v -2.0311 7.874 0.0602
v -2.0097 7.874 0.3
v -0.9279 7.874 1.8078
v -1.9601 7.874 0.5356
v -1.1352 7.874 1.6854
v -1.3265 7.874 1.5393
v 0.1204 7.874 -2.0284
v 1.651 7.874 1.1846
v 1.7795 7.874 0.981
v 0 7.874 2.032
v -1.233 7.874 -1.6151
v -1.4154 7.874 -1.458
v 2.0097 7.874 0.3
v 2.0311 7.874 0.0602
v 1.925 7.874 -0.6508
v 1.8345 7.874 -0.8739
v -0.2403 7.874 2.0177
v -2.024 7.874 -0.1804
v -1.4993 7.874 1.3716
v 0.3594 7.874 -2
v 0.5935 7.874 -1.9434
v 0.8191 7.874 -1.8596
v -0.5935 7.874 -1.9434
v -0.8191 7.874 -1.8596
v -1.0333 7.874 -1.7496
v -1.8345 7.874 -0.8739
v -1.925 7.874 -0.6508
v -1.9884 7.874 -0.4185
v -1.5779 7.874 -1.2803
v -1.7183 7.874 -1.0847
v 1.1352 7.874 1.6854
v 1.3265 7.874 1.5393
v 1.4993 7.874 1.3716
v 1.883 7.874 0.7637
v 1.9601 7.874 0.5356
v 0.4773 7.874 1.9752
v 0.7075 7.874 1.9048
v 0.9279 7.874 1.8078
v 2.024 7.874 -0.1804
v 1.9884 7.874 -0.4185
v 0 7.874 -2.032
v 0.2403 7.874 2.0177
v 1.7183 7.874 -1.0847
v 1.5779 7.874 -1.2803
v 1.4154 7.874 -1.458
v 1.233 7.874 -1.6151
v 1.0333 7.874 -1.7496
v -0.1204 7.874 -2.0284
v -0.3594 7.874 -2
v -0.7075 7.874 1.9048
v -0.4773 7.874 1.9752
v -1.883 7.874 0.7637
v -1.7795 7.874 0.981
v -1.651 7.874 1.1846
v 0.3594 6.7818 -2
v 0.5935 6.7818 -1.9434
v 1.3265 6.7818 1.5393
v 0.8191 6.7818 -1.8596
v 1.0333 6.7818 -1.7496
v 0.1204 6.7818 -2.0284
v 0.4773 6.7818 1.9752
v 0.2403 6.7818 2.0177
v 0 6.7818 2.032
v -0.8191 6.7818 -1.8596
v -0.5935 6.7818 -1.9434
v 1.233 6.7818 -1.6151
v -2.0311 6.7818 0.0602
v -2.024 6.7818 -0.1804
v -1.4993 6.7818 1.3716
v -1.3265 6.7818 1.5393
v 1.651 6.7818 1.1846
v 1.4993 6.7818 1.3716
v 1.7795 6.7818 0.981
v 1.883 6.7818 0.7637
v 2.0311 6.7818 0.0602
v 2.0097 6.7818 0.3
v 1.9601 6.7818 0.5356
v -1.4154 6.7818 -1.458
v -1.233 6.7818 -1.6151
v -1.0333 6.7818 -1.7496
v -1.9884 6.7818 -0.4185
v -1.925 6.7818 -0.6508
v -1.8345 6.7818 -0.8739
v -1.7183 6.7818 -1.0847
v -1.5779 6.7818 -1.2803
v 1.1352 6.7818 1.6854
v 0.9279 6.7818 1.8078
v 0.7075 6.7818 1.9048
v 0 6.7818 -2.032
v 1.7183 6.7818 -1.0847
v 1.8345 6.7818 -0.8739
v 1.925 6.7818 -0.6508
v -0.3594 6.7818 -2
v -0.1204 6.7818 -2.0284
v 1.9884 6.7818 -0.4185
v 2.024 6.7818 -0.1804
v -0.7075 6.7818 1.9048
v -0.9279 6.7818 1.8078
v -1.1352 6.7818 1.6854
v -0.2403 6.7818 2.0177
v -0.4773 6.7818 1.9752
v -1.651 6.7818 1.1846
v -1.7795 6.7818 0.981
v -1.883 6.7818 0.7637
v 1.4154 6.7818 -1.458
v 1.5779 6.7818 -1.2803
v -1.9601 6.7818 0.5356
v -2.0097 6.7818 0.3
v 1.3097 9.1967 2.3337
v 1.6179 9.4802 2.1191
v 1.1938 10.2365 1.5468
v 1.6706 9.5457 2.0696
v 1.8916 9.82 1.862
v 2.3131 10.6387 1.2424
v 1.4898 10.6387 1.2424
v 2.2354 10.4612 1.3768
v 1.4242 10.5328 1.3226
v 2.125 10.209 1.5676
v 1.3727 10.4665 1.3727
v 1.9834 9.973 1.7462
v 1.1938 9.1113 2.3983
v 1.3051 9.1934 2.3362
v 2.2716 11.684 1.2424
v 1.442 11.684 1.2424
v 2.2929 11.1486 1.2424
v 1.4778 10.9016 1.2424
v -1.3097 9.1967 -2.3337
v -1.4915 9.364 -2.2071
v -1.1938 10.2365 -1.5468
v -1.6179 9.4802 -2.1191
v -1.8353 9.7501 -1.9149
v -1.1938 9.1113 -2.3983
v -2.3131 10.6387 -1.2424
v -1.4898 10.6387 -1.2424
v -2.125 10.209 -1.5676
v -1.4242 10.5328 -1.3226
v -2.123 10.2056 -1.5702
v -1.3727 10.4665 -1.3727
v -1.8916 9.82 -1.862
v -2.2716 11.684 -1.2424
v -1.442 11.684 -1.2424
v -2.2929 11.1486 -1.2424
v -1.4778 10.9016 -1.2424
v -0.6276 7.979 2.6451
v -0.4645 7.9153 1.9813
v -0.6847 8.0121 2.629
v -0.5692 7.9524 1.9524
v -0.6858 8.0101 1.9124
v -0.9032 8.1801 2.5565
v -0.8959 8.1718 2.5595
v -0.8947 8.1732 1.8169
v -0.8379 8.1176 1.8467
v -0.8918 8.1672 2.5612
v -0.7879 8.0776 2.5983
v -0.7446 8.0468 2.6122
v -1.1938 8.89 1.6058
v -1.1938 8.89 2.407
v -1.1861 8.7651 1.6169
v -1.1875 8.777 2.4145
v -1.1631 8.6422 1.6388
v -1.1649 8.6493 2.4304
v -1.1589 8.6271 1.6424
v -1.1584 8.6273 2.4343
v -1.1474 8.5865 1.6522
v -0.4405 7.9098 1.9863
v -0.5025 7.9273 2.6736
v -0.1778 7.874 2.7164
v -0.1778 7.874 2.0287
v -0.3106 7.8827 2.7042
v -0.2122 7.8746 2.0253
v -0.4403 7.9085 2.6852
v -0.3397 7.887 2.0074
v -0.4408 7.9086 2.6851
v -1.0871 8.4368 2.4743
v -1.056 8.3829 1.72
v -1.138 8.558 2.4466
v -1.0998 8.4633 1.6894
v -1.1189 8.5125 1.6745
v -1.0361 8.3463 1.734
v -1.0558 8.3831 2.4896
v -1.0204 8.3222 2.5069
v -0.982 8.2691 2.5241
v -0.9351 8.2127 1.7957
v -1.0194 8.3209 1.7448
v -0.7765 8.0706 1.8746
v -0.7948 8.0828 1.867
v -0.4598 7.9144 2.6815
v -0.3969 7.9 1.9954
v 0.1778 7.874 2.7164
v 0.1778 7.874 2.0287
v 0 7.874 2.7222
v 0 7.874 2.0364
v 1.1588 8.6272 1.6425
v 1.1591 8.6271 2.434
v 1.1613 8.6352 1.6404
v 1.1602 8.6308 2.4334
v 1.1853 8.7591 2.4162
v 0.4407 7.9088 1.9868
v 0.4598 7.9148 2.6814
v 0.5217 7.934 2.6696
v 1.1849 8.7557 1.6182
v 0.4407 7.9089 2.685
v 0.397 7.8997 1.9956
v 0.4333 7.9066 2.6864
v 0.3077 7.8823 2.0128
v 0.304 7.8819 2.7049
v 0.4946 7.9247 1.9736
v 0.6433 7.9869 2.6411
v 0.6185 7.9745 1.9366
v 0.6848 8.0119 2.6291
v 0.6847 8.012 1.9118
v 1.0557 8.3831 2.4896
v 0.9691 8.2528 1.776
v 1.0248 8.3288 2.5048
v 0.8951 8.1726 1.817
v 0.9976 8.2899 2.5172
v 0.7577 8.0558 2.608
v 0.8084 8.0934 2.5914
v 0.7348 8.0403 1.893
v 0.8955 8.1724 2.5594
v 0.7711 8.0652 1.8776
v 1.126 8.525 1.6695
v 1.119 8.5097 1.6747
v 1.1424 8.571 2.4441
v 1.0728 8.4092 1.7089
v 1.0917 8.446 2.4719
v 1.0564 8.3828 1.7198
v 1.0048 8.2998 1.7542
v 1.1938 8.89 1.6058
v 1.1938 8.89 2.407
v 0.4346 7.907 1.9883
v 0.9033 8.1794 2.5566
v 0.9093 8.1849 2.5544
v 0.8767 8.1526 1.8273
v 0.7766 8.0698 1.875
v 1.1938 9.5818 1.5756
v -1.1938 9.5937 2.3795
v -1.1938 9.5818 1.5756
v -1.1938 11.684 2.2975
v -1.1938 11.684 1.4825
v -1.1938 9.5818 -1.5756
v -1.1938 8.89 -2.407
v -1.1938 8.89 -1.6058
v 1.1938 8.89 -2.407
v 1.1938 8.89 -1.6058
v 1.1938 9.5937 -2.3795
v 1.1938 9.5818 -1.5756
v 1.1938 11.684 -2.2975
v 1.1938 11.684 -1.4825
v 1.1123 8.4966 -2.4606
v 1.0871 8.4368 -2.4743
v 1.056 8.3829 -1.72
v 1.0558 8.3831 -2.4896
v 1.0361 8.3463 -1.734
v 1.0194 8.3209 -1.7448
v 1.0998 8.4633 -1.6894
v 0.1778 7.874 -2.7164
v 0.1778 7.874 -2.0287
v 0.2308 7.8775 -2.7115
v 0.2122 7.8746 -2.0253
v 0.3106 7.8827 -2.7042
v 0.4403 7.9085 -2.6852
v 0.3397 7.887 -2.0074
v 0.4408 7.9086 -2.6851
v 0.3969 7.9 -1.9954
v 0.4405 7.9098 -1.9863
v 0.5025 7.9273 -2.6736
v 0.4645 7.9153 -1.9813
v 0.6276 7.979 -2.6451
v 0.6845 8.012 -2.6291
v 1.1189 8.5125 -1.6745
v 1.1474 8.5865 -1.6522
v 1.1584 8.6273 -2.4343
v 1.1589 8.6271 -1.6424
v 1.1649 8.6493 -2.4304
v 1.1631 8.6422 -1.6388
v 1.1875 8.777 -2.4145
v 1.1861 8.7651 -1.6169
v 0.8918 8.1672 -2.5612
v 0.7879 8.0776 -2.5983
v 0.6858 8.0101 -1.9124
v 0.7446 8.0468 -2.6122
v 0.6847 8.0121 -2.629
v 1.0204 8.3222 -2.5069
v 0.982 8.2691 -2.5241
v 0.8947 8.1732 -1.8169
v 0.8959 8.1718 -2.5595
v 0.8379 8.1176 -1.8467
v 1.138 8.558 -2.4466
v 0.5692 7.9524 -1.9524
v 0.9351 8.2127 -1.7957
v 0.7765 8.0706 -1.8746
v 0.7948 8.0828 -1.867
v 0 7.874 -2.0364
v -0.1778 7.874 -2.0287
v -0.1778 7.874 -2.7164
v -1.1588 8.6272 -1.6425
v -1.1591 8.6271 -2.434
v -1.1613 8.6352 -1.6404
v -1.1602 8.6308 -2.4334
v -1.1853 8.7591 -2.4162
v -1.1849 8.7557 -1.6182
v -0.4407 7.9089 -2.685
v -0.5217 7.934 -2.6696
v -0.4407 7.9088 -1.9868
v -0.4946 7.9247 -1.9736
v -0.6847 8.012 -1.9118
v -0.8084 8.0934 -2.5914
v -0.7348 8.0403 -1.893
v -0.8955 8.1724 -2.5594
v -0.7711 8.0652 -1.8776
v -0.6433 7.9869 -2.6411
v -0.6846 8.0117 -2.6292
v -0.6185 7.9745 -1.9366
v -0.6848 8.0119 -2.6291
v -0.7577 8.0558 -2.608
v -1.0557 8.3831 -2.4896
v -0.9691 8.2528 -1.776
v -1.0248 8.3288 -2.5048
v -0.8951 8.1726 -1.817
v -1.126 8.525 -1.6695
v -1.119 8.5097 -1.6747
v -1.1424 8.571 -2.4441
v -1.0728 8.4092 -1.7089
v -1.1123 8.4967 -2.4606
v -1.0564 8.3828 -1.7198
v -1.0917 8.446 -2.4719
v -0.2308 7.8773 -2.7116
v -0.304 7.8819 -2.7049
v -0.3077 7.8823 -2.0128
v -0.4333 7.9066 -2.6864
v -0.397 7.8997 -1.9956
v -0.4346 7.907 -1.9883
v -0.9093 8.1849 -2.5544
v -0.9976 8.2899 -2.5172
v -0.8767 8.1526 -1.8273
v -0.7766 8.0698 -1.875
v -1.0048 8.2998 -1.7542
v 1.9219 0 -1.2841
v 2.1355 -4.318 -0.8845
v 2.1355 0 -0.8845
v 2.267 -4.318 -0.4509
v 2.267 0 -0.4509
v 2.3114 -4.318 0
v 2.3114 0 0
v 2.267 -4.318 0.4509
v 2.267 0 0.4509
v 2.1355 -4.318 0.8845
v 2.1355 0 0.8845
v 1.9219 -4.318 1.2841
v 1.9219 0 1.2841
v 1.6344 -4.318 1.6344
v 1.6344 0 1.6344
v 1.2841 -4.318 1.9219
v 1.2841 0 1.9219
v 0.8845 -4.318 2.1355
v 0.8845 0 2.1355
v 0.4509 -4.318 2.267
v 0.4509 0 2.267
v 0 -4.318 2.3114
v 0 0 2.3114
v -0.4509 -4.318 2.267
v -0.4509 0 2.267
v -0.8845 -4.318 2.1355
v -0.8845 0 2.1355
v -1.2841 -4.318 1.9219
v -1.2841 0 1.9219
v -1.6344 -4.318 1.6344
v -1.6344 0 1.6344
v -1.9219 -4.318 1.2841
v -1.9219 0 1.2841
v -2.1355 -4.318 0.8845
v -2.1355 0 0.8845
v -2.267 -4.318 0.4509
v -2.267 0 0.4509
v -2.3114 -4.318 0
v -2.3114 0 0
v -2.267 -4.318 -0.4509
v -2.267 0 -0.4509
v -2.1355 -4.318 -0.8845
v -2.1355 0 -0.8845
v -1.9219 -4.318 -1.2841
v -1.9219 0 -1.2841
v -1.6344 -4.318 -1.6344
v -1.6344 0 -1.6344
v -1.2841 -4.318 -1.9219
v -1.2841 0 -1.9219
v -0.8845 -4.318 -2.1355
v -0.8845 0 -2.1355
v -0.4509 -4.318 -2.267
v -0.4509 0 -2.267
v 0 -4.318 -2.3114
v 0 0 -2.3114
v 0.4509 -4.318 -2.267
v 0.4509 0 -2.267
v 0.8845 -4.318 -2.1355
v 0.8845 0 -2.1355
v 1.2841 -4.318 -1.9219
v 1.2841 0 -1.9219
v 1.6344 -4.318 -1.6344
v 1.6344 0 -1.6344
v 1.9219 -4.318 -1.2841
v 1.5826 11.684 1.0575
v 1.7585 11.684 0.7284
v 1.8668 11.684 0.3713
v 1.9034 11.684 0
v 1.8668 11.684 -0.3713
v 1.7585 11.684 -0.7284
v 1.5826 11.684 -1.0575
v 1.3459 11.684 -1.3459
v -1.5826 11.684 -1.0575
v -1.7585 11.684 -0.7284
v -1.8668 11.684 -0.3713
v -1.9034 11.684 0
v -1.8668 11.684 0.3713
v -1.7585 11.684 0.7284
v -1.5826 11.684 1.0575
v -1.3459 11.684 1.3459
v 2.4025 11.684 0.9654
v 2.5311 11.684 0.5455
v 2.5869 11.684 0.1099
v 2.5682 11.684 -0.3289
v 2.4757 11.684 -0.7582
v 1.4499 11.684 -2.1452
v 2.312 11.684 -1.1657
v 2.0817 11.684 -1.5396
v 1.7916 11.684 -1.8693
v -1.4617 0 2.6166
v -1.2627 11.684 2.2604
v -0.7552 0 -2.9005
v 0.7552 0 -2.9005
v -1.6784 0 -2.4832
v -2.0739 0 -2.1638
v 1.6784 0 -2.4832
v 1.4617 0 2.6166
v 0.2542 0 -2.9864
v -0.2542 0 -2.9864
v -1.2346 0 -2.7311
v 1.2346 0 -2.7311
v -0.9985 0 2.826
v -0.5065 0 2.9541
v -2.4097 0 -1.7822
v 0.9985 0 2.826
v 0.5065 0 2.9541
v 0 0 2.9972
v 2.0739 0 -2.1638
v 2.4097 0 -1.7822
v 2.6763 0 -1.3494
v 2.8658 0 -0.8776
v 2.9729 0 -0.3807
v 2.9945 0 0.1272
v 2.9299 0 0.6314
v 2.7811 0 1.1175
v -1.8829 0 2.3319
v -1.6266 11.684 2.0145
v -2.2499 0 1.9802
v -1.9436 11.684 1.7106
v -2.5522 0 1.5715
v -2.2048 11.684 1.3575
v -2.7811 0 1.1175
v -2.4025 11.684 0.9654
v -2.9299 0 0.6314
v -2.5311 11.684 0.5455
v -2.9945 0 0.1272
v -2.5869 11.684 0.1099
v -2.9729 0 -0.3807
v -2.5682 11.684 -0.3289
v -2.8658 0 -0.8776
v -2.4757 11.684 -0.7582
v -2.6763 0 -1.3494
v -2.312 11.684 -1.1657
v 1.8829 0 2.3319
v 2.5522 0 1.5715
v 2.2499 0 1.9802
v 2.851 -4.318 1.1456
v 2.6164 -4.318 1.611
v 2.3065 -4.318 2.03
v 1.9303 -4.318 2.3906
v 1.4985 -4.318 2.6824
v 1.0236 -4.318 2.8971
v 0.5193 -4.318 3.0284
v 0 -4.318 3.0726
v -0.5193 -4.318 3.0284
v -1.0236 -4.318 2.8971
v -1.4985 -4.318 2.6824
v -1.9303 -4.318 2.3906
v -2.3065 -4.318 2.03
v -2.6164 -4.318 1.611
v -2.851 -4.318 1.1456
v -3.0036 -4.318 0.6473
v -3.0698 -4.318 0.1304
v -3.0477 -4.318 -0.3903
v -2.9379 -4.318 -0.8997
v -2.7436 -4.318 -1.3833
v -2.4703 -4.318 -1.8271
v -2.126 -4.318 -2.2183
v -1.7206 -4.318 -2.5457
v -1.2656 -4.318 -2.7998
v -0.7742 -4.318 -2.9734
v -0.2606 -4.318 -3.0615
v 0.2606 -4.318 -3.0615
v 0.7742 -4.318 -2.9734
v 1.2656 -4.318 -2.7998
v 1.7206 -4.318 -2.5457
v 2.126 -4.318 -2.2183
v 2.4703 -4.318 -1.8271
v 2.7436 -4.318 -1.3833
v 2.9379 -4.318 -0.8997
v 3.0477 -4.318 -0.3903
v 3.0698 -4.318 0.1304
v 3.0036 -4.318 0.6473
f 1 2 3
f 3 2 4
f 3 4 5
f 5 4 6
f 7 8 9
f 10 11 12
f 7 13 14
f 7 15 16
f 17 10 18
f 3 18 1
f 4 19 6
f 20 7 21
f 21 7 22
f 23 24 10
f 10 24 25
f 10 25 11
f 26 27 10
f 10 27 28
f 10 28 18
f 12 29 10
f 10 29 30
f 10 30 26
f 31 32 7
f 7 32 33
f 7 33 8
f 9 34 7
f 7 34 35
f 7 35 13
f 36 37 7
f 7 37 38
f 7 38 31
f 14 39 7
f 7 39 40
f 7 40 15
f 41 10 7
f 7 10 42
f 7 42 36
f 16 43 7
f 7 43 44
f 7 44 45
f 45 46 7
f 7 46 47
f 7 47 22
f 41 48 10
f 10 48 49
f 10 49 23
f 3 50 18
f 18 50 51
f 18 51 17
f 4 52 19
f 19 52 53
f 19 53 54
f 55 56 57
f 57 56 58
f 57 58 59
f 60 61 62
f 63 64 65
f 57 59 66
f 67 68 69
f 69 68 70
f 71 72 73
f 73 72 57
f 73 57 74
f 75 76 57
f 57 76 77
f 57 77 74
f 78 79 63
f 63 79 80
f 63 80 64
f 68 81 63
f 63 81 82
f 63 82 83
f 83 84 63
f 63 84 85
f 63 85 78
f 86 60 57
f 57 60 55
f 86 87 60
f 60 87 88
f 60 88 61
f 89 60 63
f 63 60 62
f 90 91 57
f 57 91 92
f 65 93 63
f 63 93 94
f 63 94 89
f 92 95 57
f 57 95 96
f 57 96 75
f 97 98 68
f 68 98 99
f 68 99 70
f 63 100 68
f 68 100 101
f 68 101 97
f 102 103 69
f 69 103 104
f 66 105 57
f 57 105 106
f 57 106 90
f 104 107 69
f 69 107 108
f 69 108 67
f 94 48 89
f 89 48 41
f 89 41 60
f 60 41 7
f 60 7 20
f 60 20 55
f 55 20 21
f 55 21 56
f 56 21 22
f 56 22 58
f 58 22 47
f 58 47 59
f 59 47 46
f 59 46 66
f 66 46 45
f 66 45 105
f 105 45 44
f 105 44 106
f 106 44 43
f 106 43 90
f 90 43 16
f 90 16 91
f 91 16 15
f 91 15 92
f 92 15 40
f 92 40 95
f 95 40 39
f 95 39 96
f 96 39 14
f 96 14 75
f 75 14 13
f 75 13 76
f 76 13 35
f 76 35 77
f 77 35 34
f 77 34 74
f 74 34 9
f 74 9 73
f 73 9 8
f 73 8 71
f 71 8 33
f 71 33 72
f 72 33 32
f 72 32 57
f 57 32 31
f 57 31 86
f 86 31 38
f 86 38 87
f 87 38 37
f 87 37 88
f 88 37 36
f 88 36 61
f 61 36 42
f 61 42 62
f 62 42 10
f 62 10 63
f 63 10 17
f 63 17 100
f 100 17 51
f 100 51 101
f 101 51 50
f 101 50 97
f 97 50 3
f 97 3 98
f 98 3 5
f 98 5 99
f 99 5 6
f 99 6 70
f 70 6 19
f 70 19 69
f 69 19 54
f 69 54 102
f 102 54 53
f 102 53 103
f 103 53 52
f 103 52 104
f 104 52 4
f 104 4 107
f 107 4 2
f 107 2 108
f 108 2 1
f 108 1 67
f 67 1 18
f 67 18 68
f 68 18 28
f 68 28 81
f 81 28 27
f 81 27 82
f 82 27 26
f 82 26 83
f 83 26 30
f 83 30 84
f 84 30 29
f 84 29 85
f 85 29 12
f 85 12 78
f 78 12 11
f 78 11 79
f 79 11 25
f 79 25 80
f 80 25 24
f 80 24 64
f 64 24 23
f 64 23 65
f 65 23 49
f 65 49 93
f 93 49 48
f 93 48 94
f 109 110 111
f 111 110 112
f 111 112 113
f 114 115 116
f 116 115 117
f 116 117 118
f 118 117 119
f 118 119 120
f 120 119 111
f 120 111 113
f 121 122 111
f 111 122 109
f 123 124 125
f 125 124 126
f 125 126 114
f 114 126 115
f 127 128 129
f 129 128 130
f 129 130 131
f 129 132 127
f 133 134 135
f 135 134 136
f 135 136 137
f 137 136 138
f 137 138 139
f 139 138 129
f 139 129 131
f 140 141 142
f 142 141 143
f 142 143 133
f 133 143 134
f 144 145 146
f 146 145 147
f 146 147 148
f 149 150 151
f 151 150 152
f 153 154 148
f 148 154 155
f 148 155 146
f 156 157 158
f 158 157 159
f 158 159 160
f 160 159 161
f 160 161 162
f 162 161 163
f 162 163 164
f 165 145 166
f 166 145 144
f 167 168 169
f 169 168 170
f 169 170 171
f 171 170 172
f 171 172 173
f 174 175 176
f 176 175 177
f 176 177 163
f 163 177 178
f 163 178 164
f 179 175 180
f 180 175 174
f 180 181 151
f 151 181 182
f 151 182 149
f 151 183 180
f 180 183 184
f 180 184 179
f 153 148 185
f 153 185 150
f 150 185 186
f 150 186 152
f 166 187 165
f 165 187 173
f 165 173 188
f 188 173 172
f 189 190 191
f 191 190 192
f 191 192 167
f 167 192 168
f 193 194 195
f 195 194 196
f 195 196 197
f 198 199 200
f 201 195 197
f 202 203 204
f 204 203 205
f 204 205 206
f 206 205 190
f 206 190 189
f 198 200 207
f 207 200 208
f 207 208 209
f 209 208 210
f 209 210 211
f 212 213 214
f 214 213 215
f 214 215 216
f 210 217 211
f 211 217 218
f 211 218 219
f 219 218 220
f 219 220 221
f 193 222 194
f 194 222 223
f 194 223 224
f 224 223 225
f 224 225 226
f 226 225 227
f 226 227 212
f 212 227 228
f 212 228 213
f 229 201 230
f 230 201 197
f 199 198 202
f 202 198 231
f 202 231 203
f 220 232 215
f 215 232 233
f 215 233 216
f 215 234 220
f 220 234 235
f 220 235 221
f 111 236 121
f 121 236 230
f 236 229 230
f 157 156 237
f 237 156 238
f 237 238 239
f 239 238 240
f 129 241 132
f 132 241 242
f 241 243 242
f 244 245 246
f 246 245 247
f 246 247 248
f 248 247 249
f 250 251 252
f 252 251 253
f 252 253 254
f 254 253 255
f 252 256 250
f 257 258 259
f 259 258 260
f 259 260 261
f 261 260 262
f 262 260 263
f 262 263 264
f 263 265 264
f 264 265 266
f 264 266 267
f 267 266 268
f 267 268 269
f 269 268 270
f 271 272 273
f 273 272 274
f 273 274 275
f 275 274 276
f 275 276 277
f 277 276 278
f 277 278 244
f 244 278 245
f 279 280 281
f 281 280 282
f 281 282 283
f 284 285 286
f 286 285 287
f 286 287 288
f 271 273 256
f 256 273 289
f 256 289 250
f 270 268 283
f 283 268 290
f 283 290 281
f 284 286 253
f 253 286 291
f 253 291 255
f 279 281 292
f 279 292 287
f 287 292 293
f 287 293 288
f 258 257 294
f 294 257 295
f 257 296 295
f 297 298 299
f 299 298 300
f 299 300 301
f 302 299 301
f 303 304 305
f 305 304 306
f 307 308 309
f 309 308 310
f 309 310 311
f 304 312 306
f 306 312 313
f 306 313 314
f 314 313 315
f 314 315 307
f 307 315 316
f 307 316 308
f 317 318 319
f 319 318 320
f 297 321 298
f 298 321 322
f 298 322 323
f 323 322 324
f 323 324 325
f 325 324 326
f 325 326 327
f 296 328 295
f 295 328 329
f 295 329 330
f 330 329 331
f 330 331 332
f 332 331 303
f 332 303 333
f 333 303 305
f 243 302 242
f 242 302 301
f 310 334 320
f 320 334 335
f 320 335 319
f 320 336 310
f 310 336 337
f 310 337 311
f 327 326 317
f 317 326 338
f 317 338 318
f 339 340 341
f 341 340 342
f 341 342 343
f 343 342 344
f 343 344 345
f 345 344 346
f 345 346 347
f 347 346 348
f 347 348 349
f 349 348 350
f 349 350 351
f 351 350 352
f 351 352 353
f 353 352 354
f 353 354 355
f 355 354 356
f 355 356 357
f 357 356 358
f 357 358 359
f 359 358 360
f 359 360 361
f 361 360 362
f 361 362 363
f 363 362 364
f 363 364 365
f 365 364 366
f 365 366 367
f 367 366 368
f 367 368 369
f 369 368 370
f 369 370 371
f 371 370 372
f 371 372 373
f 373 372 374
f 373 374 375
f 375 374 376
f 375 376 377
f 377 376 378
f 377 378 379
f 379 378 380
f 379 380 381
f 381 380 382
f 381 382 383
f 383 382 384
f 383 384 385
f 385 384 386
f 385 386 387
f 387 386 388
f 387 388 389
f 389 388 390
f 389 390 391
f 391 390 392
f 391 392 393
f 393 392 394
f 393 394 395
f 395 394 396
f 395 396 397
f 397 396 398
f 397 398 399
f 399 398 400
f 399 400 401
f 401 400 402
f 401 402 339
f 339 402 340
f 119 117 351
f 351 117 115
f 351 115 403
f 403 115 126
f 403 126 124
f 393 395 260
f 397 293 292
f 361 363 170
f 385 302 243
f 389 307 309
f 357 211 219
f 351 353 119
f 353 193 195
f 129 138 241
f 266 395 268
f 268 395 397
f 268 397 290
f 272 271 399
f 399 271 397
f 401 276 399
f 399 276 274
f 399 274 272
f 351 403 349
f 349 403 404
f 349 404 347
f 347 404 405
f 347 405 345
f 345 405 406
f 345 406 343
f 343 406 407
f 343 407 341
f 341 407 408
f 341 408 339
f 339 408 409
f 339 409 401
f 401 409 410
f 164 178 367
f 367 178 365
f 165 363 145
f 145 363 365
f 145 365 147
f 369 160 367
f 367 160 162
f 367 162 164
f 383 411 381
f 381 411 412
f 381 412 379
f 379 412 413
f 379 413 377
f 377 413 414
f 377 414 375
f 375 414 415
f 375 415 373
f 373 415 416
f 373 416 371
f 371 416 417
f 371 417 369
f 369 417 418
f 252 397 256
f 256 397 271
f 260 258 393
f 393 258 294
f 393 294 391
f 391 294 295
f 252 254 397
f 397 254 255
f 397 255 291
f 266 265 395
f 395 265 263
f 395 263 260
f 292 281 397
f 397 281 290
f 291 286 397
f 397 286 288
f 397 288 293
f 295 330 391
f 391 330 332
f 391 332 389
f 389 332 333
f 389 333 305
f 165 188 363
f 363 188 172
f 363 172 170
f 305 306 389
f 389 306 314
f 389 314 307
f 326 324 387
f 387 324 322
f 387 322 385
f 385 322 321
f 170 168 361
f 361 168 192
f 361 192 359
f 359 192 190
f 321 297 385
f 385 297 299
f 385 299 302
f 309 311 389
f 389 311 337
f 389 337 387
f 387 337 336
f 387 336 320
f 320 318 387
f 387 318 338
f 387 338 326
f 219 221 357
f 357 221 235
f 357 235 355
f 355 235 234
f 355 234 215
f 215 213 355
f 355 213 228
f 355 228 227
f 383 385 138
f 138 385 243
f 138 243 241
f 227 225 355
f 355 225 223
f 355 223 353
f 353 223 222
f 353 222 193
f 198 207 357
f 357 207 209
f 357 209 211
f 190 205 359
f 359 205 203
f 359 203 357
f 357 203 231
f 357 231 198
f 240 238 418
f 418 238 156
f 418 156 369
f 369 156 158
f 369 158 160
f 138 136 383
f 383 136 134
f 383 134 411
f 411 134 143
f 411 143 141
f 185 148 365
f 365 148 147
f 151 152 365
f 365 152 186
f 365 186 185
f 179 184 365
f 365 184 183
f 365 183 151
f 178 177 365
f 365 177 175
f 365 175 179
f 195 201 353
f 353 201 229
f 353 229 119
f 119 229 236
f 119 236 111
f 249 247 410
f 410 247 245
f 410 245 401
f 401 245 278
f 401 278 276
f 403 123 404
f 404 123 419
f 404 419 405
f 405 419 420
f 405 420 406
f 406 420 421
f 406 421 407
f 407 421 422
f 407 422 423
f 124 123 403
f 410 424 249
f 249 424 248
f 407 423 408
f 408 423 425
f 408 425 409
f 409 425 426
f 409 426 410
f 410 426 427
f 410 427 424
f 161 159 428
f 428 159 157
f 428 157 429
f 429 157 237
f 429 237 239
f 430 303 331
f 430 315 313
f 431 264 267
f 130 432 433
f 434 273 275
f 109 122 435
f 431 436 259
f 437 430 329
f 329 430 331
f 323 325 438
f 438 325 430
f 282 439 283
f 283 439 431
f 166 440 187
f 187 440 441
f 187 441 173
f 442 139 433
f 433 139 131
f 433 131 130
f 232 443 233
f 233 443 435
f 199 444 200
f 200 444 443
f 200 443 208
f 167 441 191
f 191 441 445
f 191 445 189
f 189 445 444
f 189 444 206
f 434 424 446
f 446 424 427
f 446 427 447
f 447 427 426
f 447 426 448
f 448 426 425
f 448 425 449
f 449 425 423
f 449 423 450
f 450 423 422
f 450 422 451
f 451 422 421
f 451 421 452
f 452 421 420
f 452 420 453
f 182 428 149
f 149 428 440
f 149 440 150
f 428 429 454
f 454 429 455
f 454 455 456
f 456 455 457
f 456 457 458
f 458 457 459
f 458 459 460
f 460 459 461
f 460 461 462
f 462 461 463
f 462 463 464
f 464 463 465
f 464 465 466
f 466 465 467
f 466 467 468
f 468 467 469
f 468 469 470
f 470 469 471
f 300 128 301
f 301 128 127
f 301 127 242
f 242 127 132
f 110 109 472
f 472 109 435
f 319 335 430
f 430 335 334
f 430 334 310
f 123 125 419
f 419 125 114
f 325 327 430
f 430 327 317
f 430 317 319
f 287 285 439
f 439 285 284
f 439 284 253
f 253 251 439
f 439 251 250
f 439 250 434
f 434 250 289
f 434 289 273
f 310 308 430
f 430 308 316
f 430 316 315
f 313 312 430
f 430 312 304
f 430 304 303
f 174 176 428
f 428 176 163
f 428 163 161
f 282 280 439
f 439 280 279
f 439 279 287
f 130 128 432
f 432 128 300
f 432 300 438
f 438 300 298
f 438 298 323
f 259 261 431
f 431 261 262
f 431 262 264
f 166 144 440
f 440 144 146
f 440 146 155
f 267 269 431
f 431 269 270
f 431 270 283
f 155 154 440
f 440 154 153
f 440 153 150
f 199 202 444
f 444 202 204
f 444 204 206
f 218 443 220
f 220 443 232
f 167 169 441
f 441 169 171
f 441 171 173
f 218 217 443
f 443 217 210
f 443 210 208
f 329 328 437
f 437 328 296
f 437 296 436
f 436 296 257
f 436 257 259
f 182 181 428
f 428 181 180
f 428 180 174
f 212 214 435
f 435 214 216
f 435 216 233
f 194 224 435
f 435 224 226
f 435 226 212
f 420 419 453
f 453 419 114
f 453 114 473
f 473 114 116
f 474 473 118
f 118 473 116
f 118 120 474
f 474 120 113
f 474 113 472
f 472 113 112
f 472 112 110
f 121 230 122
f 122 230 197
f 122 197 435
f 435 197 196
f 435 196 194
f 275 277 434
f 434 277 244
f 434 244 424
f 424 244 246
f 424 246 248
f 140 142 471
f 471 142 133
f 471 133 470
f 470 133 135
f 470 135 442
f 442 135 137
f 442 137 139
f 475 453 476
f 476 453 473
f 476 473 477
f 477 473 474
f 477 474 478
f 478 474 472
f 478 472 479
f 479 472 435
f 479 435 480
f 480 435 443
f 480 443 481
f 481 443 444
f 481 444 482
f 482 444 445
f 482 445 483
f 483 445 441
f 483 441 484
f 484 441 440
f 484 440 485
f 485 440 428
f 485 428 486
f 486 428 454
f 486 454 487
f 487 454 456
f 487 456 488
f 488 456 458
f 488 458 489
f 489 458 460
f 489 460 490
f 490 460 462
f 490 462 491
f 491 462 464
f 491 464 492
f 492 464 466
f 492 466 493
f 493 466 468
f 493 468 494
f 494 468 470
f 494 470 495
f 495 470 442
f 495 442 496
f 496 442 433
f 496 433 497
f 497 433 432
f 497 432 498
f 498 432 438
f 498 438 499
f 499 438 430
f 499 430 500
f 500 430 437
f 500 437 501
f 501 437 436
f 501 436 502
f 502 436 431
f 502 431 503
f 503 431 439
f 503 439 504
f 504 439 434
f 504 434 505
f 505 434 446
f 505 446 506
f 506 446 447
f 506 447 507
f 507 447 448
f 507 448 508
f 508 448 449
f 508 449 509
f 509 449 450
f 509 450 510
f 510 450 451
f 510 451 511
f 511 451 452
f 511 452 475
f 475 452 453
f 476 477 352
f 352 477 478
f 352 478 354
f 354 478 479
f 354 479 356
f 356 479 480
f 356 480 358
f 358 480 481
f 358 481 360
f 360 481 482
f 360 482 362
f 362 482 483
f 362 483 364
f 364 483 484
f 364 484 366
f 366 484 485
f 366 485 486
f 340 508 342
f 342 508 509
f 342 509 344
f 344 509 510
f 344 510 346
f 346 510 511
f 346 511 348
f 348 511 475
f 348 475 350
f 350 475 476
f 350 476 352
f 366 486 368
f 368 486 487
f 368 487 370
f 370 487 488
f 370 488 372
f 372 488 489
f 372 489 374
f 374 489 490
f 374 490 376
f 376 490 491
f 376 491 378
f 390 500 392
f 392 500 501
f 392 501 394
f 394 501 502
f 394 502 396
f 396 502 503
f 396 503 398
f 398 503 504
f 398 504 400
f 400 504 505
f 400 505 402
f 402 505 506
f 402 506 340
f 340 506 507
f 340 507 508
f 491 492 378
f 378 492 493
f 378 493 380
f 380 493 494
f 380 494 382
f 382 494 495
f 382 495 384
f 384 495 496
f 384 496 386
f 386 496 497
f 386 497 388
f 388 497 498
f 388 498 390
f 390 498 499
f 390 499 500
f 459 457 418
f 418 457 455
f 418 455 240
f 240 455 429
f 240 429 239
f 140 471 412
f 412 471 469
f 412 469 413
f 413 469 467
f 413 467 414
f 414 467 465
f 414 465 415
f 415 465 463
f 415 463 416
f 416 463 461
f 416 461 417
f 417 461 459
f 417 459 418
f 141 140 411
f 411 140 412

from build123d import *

# Parameters (mm, degrees)
SKETCH1_R                   = 2.9972
INSERT_DEPTH                = 11.684
INSERT_TAPER                = 2
INSERT_OTHER_WAY_DEPTH      = 4.318
INSERT_OTHER_WAY_TAPER      = -1
SKETCH2_R                   = 2.3114
INSERT_BORE_DEPTH           = 13.465843104
INSERT_BORE_TAPER           = 2
INSERT_BORE_OTHER_WAY_DEPTH = 13.465843104
PASS_CUT_DEPTH              = 13.465843104
PASS_CUT_DEPTH_BACK         = 13.465843104
PASS_CHIP_DEPTH             = 13.465843104
CIRPATTERN1_COUNT           = 2
SKETCH5_R                   = 2.032
BOSS_EXTRUDE1_DEPTH         = 1.0922


with BuildPart() as part:
    # Sketch1 → insert (new body)
    with BuildSketch(Plane(origin=(0, 0, 0), x_dir=(1, 0, 0), z_dir=(0, 1, 0))):
        Circle(SKETCH1_R)
    extrude(amount=INSERT_DEPTH, taper=INSERT_TAPER)

    # Sketch1 → insert other way (add)
    with BuildSketch(Plane(origin=(0, 0, 0), x_dir=(1, 0, 0), z_dir=(0, 1, 0))):
        Circle(SKETCH1_R)
    extrude(amount=-INSERT_OTHER_WAY_DEPTH, taper=INSERT_OTHER_WAY_TAPER)

    # Sketch2 → insert bore (cut)
    with BuildSketch(Plane.XZ):
        with Locations(Location((0, 0, 0), (0, 0, 270))):
            Circle(SKETCH2_R)
    extrude(amount=-INSERT_BORE_DEPTH, taper=INSERT_BORE_TAPER, mode=Mode.SUBTRACT)

    # Sketch2 → insert bore other way (cut)
    with BuildSketch(Plane.XZ):
        with Locations(Location((0, 0, 0), (0, 0, 270))):
            Circle(SKETCH2_R)
    extrude(amount=INSERT_BORE_OTHER_WAY_DEPTH, mode=Mode.SUBTRACT)

    # Sketch3 → pass cut (cut, two sides: drawn at the far end of the back side and taken through both)
    with BuildSketch(Plane.XY.offset(-PASS_CUT_DEPTH_BACK)):
        with BuildLine():
            Line((-1.1938, 11.684), (1.1938, 11.684))
            Line((1.1938, 11.684), (1.1938, 8.89))
            ThreePointArc((1.1938, 8.89), (0.89622049, 8.17157951), (0.1778, 7.874))
            Line((0.1778, 7.874), (-0.1778, 7.874))
            ThreePointArc((-0.1778, 7.874), (-0.89622049, 8.17157951), (-1.1938, 8.89))
            Line((-1.1938, 8.89), (-1.1938, 11.684))
        make_face()
    extrude(amount=PASS_CUT_DEPTH + PASS_CUT_DEPTH_BACK, mode=Mode.SUBTRACT)

    # Sketch4 → pass chip (cut, through all)
    with BuildSketch(Plane(origin=(0, 0, 0), x_dir=(0, 0, -1), z_dir=(1, 0, 0))):
        Polygon((1.242429972, 11.684), (2.707189518, 11.684), (2.707189518, 8.703141678), (1.242429972, 10.638716792), align=None)
    pass_chip = extrude(amount=-PASS_CHIP_DEPTH, mode=Mode.SUBTRACT)

    # CirPattern1: pass chip ×2 about axis
    cirpattern1_axis = Axis((0, -4.318, 0), (0, 1, 0))
    for i in range(1, CIRPATTERN1_COUNT):
        add(pass_chip.rotate(cirpattern1_axis, i * 360 / CIRPATTERN1_COUNT), mode=Mode.SUBTRACT)


with BuildPart() as body_2:
    # Sketch5 → Boss-Extrude1 (new body)
    with BuildSketch(Plane(origin=(0, 7.874, 0), x_dir=(-1, 0, 0), z_dir=(0, -1, 0))):
        with Locations(Location((0, 0, 0), (0, 0, 90))):
            Circle(SKETCH5_R)
    extrude(amount=BOSS_EXTRUDE1_DEPTH)


solid = Compound([part.part, body_2.part])
